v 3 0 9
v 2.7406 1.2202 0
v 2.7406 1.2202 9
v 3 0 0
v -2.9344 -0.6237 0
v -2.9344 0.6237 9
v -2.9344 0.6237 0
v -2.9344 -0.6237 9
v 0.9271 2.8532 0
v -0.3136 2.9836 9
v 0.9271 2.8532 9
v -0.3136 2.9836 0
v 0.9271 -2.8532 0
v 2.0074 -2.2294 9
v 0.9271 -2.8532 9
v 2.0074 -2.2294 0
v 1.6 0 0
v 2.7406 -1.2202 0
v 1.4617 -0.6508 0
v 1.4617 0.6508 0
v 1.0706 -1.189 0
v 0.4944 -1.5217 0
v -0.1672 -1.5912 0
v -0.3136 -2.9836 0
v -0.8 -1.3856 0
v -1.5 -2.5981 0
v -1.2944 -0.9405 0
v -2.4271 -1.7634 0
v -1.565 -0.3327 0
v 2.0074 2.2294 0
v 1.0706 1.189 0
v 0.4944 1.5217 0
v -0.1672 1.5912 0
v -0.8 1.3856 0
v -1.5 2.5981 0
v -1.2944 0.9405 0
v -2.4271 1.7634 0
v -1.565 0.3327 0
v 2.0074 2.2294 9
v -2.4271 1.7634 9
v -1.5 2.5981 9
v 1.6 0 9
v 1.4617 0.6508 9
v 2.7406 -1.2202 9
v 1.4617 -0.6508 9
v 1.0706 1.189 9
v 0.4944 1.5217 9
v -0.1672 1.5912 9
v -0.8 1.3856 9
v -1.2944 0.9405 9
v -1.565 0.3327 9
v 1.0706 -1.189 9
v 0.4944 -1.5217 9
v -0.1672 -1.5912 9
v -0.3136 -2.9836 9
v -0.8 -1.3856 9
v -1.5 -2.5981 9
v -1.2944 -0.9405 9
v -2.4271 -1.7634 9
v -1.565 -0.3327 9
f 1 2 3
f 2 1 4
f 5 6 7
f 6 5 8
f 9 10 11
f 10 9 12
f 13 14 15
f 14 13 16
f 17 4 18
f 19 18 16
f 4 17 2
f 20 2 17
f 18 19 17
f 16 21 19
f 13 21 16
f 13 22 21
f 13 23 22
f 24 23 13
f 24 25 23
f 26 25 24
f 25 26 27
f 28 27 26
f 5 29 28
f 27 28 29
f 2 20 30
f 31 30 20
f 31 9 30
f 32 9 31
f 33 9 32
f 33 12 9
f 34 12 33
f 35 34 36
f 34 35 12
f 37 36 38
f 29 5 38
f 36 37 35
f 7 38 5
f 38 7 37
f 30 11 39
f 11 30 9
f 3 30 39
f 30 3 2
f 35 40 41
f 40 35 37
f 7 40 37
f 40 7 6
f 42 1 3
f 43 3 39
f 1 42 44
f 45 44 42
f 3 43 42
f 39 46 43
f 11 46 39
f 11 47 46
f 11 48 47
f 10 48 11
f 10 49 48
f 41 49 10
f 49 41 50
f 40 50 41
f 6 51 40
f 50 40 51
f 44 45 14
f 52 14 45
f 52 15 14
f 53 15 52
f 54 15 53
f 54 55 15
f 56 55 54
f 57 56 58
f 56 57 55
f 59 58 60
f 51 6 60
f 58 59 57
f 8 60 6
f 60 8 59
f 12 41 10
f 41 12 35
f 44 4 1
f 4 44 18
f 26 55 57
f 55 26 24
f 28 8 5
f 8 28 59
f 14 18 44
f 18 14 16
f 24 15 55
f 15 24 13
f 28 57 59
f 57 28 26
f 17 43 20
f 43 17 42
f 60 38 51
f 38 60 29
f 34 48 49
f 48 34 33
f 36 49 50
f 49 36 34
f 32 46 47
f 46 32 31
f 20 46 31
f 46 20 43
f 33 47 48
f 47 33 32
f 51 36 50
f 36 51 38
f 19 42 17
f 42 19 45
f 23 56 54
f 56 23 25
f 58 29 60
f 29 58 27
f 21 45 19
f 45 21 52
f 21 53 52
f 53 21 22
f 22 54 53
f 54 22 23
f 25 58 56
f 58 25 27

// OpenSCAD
$fn = 15;

spacer_round_9();


module spacer_round_9() {
    difference(){
        cylinder(h=9, r=3);
            cylinder(h=9, r=1.6);
        
    };
}
